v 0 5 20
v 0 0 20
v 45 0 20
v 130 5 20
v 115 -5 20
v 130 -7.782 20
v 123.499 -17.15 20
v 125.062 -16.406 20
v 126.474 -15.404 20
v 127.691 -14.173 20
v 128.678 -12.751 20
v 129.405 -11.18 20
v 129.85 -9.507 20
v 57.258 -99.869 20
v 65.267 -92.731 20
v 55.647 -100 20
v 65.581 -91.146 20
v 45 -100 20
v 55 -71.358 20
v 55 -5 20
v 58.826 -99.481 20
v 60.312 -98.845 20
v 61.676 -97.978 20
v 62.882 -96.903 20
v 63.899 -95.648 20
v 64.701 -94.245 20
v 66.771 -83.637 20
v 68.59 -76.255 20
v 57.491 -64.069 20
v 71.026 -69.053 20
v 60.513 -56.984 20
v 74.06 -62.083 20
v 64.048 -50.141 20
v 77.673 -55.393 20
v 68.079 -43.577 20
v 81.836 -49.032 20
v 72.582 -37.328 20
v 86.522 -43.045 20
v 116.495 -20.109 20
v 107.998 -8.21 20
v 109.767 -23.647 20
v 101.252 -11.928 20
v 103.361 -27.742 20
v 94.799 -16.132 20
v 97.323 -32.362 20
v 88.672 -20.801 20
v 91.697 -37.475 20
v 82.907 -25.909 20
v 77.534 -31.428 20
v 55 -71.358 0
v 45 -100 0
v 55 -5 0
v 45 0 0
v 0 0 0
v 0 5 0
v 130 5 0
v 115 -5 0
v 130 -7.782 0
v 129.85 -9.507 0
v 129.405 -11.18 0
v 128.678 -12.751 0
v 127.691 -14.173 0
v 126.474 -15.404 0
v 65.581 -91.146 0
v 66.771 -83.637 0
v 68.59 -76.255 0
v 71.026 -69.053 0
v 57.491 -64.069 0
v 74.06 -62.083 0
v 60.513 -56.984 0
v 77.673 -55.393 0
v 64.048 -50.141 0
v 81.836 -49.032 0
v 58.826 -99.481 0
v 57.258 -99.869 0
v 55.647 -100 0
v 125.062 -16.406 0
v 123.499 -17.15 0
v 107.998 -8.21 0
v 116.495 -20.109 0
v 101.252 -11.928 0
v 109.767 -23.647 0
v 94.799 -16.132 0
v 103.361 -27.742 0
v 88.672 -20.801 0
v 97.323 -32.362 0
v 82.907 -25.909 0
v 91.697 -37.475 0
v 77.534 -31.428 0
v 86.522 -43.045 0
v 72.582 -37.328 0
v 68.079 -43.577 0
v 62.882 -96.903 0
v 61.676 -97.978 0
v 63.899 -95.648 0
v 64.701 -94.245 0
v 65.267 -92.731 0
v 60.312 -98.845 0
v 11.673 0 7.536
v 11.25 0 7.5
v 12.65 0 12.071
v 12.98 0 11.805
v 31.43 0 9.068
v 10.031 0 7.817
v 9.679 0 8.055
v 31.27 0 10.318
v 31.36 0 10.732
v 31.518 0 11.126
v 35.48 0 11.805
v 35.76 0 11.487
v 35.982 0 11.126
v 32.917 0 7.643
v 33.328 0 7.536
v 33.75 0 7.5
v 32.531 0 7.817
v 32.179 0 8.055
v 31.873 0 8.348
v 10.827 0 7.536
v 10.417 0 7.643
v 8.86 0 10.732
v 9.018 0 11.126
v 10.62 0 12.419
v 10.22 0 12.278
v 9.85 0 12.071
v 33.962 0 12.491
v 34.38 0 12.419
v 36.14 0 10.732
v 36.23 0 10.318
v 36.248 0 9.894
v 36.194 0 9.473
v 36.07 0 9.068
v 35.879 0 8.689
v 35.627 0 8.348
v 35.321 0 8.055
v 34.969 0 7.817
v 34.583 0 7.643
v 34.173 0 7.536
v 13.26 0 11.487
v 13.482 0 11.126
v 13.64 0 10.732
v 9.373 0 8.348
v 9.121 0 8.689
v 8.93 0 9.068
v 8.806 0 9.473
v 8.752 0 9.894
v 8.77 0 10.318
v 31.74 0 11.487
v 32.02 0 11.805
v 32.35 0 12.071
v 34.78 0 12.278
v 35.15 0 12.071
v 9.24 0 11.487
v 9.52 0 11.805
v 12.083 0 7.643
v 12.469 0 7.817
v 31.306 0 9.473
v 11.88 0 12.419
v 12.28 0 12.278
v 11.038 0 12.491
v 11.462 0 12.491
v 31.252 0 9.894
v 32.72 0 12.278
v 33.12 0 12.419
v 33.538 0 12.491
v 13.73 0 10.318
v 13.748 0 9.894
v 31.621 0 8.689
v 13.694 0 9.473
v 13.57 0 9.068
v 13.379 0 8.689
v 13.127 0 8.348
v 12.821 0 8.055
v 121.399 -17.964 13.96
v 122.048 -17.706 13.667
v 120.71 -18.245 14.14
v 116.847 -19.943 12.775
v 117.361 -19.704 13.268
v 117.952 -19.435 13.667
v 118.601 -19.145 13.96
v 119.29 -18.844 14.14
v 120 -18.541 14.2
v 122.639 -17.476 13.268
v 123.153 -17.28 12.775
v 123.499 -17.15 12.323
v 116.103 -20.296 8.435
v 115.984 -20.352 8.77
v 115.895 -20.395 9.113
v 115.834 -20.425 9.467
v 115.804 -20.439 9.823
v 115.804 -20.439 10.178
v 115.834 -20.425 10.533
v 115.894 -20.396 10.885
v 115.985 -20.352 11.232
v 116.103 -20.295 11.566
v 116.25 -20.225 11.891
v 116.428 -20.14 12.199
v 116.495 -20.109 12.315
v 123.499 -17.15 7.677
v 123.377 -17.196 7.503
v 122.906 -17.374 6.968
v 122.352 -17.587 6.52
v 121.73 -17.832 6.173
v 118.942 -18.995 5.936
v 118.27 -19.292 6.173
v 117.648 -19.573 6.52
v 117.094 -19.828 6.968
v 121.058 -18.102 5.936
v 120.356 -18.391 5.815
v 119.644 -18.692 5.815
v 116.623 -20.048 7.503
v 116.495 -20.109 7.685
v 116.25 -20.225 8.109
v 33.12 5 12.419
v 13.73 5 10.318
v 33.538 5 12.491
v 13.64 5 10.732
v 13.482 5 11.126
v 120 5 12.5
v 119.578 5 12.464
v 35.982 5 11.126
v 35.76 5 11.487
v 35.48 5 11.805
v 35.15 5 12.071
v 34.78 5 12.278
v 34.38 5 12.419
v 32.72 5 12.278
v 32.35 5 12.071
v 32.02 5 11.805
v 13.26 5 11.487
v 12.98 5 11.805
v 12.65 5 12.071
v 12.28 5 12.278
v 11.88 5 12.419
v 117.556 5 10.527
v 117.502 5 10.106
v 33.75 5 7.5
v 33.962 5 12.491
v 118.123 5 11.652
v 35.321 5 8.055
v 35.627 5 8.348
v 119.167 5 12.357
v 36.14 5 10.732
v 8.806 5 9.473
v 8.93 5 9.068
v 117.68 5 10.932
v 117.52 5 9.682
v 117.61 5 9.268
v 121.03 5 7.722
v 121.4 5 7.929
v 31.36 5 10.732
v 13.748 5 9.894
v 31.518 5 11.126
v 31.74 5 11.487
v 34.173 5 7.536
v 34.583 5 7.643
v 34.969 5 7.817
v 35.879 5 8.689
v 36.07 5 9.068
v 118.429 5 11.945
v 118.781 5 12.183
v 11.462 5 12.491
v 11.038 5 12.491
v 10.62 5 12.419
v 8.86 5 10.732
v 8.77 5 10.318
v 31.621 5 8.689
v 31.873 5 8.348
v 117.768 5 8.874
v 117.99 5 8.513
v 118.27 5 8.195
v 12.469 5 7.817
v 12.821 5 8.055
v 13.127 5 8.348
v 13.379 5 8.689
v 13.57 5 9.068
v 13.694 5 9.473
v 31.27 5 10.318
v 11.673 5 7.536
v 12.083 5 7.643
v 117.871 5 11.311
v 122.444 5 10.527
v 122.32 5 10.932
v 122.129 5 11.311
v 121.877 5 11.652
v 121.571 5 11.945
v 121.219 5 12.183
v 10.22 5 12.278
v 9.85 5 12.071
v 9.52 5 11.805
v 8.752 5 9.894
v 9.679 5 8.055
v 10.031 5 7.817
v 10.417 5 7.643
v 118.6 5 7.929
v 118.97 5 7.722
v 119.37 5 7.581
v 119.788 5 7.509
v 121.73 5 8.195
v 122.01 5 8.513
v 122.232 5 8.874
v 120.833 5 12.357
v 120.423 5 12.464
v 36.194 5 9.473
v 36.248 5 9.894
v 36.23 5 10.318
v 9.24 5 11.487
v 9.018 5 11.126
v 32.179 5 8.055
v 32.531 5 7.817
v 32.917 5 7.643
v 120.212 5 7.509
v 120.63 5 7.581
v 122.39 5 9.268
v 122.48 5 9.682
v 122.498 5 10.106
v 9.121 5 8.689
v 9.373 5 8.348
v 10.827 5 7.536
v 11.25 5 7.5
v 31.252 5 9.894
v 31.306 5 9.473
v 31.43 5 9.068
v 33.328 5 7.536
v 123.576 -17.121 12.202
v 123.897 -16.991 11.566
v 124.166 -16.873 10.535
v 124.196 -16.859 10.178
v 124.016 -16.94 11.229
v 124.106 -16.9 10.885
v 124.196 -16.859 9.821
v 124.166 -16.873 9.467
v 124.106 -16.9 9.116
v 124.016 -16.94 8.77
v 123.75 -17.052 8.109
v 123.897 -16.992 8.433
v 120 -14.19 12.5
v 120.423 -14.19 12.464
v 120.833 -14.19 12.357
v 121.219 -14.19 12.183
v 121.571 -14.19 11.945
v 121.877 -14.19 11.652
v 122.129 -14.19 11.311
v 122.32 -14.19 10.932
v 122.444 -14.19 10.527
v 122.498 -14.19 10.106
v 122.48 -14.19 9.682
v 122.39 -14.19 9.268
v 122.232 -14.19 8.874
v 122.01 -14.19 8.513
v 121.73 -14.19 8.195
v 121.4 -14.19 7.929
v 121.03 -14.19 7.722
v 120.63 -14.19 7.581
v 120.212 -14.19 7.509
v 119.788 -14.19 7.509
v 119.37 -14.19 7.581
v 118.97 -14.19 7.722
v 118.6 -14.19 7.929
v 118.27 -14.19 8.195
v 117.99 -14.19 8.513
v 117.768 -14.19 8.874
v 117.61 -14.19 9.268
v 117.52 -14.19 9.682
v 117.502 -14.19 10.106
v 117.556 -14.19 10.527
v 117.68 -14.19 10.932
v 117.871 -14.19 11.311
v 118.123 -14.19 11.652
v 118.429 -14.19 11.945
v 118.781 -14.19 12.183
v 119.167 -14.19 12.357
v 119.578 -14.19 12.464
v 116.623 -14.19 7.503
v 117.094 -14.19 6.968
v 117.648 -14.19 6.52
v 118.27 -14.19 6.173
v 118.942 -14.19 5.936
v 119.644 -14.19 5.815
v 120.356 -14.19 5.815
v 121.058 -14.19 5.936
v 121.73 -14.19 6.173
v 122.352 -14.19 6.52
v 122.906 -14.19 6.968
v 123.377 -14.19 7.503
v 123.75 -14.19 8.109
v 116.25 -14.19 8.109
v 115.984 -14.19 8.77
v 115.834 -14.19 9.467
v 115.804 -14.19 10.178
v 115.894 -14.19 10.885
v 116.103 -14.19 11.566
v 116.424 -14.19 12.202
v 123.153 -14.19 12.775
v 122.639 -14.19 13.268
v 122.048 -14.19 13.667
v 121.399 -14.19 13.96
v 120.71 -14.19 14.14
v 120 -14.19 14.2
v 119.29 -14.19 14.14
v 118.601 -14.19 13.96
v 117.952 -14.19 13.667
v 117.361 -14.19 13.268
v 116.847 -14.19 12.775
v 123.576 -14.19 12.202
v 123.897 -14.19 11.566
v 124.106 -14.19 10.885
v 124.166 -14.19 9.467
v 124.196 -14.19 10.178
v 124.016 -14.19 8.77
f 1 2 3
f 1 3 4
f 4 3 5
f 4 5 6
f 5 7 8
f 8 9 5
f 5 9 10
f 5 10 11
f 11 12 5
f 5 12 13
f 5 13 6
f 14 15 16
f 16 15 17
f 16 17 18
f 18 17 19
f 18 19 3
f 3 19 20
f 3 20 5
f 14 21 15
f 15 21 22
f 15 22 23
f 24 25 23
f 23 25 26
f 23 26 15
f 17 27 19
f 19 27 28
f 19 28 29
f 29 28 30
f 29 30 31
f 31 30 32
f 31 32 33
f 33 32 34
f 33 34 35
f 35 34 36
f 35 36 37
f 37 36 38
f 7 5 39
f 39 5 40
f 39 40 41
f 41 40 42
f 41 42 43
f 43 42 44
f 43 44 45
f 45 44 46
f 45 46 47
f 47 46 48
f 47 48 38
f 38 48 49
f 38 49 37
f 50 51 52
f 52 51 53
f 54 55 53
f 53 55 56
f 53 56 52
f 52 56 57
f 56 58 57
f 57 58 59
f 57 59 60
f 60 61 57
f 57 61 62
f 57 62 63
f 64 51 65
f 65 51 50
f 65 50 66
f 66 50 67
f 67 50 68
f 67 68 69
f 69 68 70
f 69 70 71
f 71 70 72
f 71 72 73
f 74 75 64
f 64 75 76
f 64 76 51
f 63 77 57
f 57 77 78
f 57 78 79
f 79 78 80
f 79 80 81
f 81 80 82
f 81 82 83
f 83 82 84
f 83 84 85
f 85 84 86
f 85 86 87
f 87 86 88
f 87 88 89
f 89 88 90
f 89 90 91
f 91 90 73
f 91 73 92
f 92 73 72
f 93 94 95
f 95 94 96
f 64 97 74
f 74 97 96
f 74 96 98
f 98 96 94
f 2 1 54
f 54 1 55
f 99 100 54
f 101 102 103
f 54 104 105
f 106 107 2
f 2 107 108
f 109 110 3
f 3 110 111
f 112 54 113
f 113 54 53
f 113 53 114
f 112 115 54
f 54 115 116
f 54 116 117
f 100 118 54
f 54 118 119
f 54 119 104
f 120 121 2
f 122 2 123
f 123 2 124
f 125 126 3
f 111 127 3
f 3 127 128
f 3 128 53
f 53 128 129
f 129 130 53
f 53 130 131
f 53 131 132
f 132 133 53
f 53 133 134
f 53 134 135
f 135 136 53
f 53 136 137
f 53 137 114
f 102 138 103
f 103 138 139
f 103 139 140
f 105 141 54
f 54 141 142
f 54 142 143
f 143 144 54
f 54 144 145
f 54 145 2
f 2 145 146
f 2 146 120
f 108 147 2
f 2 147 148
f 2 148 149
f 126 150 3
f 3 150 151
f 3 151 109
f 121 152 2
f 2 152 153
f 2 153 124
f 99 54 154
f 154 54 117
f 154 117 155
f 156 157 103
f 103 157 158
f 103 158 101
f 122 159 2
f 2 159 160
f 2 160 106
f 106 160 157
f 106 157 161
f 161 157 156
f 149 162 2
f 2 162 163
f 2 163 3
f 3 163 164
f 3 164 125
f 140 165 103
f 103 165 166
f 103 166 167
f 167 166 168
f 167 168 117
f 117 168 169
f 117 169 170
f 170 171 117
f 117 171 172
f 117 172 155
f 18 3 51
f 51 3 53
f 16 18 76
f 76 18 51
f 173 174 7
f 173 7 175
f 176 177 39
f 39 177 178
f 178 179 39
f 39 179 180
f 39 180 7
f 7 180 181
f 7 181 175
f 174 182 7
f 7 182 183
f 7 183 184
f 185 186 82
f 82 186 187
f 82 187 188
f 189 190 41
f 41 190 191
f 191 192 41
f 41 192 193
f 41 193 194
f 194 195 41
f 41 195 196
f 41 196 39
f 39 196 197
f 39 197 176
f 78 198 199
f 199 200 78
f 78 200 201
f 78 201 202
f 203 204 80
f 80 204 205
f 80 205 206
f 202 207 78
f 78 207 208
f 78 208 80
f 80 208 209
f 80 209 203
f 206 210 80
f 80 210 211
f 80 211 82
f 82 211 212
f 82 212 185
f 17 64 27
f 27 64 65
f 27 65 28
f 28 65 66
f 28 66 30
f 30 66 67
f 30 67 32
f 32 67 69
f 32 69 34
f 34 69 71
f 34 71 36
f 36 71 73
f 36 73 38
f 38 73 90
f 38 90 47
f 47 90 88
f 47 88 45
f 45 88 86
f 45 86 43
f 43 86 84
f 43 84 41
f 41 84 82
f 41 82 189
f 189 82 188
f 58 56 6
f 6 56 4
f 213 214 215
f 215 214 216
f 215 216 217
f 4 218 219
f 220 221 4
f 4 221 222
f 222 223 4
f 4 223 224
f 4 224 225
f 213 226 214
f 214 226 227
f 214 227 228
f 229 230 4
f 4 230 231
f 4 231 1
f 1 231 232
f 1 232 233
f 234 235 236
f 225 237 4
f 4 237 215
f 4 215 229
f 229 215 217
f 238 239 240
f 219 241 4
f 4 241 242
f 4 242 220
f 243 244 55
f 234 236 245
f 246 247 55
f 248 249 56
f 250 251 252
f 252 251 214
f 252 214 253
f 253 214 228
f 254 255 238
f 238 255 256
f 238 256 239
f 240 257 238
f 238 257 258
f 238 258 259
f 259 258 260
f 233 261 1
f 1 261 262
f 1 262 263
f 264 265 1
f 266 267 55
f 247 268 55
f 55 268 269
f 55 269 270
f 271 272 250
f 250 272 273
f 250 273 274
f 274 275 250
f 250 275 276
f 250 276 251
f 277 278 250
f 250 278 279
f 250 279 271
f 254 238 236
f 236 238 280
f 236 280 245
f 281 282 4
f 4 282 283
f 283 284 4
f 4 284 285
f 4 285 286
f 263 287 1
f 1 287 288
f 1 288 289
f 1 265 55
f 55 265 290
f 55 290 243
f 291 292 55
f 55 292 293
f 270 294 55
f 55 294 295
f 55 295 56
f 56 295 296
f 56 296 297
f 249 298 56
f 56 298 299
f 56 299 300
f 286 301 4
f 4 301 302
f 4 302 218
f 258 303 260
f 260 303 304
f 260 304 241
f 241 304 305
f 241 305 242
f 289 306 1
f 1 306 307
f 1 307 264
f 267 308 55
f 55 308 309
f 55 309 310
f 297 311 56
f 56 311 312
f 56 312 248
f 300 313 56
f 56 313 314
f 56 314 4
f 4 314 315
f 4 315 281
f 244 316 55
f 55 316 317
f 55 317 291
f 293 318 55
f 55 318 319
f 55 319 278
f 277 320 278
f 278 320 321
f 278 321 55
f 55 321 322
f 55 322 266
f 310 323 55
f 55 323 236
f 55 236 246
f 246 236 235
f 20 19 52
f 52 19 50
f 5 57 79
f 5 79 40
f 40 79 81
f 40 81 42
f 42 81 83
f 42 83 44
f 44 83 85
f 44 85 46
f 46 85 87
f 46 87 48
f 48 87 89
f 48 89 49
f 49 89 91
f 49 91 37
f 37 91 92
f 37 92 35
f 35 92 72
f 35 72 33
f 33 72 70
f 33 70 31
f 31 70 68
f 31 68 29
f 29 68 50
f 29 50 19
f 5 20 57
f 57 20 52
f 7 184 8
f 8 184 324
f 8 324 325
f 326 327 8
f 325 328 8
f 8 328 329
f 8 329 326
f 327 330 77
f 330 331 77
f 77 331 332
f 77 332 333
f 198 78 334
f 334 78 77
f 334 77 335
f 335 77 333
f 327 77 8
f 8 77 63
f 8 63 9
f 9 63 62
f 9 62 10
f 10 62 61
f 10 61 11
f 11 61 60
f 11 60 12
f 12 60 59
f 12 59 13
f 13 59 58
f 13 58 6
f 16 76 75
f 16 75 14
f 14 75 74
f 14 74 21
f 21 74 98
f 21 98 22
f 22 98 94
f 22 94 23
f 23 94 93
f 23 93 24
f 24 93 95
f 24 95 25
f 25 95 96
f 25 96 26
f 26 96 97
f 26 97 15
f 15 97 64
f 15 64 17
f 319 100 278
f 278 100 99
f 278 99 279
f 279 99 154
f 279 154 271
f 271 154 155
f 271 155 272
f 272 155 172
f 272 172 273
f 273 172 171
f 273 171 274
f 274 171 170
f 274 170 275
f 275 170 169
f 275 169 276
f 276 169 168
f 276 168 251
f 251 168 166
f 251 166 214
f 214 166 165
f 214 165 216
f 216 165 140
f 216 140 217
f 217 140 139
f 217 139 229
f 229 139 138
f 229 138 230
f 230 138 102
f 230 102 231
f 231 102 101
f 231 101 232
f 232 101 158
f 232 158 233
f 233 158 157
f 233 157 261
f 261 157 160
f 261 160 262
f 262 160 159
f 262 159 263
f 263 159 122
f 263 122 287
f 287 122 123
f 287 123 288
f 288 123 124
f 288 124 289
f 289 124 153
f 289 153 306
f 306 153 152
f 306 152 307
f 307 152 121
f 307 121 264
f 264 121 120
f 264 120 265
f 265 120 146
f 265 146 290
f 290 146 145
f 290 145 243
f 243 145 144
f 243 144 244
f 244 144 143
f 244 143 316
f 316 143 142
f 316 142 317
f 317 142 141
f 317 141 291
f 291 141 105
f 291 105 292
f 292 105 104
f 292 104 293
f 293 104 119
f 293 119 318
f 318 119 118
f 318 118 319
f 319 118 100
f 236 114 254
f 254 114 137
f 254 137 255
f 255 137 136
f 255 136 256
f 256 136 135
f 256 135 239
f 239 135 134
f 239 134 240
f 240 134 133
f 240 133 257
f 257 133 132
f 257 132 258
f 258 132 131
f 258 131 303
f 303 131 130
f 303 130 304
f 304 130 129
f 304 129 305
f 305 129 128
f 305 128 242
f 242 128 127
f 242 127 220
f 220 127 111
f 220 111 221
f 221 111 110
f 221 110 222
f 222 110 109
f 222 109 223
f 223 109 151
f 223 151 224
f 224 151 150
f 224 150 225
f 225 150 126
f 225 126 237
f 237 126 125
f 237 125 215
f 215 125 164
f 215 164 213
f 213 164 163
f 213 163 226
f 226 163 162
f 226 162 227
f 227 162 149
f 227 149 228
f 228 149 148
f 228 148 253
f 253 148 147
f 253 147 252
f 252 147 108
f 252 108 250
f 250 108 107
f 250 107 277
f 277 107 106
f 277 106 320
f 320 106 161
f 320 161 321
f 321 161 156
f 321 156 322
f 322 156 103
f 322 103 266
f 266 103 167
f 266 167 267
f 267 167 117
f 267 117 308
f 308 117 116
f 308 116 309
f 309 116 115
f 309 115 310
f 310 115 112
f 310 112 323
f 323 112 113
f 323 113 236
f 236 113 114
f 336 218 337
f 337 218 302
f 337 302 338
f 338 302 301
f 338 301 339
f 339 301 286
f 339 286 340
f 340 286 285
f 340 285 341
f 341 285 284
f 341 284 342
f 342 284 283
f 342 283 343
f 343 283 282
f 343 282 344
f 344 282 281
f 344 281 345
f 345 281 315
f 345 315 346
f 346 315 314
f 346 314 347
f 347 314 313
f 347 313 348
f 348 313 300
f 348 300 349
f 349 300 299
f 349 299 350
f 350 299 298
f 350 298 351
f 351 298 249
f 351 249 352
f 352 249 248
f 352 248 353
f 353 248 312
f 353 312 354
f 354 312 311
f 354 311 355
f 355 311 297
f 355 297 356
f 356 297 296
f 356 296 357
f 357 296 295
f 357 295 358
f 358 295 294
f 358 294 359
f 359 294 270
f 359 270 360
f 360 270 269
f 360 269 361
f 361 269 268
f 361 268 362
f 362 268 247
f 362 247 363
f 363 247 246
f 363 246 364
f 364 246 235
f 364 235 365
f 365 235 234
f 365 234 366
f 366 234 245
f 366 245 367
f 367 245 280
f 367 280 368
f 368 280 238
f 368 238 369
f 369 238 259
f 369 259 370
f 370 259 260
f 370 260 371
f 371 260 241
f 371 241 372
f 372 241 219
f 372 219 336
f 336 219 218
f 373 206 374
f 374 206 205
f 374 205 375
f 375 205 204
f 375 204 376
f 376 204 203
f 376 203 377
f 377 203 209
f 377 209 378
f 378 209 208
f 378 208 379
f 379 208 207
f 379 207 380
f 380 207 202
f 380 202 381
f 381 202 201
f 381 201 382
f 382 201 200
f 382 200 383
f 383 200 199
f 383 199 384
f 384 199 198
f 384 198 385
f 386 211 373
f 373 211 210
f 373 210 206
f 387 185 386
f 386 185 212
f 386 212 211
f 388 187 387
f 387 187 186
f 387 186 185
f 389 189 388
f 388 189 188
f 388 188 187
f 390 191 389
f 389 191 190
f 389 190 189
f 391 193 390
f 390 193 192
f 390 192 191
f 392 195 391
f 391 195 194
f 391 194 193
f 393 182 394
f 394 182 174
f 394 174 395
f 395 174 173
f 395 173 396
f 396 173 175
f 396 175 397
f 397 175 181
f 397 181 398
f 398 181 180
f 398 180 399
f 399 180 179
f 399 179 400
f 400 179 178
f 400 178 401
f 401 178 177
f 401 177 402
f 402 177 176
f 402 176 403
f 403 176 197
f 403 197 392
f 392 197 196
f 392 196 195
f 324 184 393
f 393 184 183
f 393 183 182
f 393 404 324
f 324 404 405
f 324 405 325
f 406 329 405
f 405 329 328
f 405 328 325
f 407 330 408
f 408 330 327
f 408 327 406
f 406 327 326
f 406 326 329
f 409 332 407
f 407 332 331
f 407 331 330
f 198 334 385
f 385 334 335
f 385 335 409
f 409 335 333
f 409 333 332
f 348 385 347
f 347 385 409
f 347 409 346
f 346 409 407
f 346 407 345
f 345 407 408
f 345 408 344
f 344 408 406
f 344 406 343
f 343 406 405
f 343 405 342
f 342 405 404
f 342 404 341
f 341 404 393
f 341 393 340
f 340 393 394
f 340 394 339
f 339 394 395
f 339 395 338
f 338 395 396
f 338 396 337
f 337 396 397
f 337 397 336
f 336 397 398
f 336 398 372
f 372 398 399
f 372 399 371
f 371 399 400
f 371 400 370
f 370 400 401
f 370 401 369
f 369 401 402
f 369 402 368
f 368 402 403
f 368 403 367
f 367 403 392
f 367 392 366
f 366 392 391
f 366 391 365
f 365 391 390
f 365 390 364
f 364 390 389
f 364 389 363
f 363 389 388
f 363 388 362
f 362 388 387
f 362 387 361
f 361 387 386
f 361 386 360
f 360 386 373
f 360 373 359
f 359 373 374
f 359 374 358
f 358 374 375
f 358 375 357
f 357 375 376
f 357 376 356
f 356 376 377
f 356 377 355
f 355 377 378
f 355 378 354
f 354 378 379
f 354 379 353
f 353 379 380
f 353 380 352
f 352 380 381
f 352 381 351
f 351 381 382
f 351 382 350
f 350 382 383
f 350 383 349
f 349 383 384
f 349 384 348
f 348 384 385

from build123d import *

# Parameters (mm, degrees)
BOSS_EXTRU_1_DEPTH           = 20
CONG_1_R                     = 10
CONG_2_R                     = 10
ESQUISSE3_R                  = 2.5
ENL_V_MAT_EXTRU_1_DEPTH      = 20
ESQUISSE4_R                  = 2.5
ENL_V_MAT_EXTRU_2_DEPTH      = 106
ESQUISSE5_R                  = 4.2
ENL_V_MAT_EXTRU_3_DEPTH      = 3
ENL_V_MAT_EXTRU_3_DEPTH_BACK = 13


with BuildPart() as part:
    # Esquisse2 → Boss.-Extru.1 (new body)
    with BuildSketch(Plane.XY):
        with BuildLine():
            Line((0, 0), (45, 0))
            Line((45, 0), (45, -100))
            Line((45, -100), (65, -100))
            ThreePointArc((65, -100), (83.49592747, -46.791003359), (130, -15))
            Line((130, -15), (130, 5))
            Line((130, 5), (0, 5))
            Line((0, 5), (0, 0))
        make_face()
        with BuildLine():
            Line((115, -5), (55, -5))
            Line((55, -5), (55, -71.357566363))
            ThreePointArc((55, -71.357566363), (77.53382116, -31.427921826), (115, -5))
        make_face(mode=Mode.SUBTRACT)
    extrude(amount=BOSS_EXTRU_1_DEPTH)

    # Congé1
    cong_1_edges = [part.edges().sort_by_distance(p)[0] for p in [
        (130, -15, 10),
    ]]
    fillet(cong_1_edges, radius=CONG_1_R)

    # Congé2
    cong_2_edges = [part.edges().sort_by_distance(p)[0] for p in [
        (65, -100, 10),
    ]]
    fillet(cong_2_edges, radius=CONG_2_R)

    # Esquisse3 → Enlèv. mat.-Extru.1 (cut)
    with BuildSketch(Plane.XZ):
        with Locations((33.75, 10)):
            Circle(ESQUISSE3_R)
        with Locations((11.25, 10)):
            Circle(ESQUISSE3_R)
    extrude(amount=-ENL_V_MAT_EXTRU_1_DEPTH, mode=Mode.SUBTRACT)

    # Esquisse4 → Enlèv. mat.-Extru.2 (cut, through all)
    with BuildSketch(Plane(origin=(0, 5, 0), x_dir=(1, 0, 0), z_dir=(0, 1, 0))):
        with Locations((120, -10)):
            Circle(ESQUISSE4_R)
    extrude(amount=-ENL_V_MAT_EXTRU_2_DEPTH, mode=Mode.SUBTRACT)

    # Esquisse5 → Enlèv. mat.-Extru.3 (cut, two sides)
    with BuildSketch(Plane(origin=(0, -17.190046968, 0), x_dir=(1, 0, 0), z_dir=(0, 1, 0))) as enl_v_mat_extru_3_sk:
        with Locations((120, -10)):
            Circle(ESQUISSE5_R)
    extrude(amount=ENL_V_MAT_EXTRU_3_DEPTH, mode=Mode.SUBTRACT)
    extrude(enl_v_mat_extru_3_sk.sketch, amount=-ENL_V_MAT_EXTRU_3_DEPTH_BACK, mode=Mode.SUBTRACT)


solid = part.part
